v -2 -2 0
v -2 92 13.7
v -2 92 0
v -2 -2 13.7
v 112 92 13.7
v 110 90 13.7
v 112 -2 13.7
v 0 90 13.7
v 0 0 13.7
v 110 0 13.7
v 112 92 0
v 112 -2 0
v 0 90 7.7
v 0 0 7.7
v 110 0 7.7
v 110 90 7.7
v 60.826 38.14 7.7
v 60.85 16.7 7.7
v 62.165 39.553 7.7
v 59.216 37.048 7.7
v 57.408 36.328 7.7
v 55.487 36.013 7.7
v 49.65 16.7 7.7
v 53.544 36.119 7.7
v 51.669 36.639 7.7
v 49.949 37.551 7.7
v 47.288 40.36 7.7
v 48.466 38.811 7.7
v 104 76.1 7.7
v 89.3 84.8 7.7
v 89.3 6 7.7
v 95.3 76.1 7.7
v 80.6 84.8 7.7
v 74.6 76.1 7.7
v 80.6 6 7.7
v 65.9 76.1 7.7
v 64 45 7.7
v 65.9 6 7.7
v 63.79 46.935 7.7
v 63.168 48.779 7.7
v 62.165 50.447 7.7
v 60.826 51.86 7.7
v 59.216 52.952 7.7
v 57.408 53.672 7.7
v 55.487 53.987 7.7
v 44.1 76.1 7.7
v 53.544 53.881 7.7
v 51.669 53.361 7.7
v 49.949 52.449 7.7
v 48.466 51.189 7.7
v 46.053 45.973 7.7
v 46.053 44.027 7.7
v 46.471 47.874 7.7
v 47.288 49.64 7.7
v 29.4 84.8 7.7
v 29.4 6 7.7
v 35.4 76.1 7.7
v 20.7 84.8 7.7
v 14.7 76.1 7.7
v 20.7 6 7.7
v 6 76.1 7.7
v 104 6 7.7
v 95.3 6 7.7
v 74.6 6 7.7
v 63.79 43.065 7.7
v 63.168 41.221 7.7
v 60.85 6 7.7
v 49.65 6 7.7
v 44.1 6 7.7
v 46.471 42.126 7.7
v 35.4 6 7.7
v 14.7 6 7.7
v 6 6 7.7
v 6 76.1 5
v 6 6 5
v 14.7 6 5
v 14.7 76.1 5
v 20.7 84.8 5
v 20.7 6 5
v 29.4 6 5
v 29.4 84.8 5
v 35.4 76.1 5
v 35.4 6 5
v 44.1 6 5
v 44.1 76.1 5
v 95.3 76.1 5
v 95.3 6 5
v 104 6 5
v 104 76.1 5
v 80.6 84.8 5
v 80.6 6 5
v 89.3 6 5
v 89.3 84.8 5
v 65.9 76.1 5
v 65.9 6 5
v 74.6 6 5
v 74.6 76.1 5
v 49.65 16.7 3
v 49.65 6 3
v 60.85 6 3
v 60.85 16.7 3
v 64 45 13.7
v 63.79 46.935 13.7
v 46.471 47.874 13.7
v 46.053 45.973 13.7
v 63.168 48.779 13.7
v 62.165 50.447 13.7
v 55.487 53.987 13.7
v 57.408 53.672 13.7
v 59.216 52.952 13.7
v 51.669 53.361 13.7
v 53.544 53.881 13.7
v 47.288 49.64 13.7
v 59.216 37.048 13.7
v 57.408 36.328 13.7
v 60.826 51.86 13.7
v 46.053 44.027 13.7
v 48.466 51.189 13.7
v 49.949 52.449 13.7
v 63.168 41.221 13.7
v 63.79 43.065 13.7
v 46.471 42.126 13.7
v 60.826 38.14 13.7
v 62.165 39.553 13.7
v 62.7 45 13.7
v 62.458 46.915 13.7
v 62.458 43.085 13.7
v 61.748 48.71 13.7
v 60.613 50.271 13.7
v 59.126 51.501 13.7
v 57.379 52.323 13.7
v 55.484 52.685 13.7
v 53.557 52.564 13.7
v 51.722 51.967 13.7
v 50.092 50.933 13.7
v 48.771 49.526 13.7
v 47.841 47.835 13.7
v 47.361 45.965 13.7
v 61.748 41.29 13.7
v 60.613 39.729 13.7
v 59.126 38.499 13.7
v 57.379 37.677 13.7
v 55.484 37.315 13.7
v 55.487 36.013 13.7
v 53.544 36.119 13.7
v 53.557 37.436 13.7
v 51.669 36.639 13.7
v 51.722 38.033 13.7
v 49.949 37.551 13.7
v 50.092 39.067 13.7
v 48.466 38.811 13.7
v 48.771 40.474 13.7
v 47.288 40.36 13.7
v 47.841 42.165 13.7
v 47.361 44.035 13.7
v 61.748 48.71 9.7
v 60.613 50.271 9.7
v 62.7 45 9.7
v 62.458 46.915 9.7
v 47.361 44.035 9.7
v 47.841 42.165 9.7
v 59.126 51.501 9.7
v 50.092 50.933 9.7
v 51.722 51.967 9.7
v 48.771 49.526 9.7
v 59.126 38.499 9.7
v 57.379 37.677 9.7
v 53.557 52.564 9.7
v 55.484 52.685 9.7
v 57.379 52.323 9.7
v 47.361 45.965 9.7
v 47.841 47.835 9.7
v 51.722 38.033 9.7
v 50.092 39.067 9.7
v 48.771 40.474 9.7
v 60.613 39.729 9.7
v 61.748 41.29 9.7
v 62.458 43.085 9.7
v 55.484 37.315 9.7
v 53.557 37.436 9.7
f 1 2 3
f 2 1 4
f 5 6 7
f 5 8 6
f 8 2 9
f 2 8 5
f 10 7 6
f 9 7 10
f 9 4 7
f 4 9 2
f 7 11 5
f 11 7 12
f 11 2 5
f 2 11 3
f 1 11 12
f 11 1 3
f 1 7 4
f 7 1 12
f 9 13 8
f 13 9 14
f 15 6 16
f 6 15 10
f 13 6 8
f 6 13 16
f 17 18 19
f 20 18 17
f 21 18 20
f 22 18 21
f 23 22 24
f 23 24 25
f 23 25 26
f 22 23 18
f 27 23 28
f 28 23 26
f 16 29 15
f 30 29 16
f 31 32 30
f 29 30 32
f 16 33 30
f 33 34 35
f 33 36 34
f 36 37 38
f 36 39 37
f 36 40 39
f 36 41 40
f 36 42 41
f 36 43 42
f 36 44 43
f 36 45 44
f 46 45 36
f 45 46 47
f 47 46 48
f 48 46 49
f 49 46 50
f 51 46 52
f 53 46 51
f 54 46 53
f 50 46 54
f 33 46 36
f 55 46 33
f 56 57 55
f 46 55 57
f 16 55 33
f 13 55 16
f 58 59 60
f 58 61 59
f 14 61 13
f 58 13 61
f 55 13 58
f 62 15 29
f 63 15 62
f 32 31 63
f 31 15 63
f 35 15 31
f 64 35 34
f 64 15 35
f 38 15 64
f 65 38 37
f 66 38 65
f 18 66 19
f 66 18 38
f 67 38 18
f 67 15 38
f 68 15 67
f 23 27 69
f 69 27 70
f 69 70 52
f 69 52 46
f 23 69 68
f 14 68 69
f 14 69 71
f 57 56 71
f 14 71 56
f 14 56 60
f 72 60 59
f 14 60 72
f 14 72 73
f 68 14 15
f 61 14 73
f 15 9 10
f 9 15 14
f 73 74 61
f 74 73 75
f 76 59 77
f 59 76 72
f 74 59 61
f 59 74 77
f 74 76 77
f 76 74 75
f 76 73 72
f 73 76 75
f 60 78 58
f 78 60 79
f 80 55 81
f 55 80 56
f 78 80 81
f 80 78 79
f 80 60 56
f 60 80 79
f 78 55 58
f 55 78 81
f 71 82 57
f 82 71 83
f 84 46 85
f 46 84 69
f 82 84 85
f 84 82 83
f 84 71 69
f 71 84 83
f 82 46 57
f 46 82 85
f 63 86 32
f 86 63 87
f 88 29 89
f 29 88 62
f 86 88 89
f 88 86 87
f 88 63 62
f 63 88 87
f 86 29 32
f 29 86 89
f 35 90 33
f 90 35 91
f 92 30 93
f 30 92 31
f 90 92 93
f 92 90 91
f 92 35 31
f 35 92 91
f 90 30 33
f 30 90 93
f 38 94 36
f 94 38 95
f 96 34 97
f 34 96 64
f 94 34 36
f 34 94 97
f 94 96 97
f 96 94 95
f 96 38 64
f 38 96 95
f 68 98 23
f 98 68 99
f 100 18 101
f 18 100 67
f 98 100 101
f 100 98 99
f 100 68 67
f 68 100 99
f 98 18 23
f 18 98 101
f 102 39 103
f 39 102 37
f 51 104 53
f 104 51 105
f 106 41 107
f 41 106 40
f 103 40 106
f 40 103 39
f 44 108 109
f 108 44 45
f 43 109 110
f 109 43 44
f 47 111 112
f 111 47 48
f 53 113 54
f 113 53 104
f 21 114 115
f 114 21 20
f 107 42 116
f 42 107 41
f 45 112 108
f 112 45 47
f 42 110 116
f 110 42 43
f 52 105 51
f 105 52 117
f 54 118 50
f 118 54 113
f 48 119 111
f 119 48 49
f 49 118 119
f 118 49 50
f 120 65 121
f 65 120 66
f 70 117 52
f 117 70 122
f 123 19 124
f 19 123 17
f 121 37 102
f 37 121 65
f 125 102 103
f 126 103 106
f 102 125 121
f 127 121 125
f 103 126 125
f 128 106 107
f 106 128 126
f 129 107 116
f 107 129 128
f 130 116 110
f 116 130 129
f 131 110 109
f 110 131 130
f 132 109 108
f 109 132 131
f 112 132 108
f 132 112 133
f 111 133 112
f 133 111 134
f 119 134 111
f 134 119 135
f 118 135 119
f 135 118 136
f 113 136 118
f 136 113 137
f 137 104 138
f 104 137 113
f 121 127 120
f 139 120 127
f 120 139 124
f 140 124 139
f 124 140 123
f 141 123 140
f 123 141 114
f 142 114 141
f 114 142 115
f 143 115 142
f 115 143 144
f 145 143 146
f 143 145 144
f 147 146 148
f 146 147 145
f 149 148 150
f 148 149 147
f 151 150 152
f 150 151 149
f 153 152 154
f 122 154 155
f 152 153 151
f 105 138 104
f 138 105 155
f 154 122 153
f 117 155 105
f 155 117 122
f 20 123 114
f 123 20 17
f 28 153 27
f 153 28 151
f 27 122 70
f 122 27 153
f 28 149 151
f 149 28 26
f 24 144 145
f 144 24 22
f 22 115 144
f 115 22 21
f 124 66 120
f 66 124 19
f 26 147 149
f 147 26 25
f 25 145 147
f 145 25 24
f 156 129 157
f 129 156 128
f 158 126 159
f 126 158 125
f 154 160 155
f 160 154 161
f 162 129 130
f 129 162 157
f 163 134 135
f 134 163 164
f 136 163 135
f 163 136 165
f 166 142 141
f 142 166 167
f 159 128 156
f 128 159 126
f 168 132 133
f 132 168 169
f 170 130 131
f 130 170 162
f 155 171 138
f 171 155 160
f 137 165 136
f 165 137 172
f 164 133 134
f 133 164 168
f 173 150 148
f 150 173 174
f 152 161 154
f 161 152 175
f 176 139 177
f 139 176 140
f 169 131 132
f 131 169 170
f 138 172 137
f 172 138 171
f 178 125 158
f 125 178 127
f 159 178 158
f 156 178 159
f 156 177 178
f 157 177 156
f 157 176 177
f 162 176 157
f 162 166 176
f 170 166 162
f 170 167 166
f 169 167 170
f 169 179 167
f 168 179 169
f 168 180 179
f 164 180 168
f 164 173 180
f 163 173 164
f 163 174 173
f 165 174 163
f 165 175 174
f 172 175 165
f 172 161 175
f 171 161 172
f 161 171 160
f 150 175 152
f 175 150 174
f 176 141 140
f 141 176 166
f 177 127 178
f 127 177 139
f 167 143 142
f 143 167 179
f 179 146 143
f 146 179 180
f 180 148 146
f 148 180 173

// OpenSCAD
largeWoodenCubeSide = 10.2 + .5;
woodenCubeSide = 8.2 + .5;
protrusionHeight = 6;

length = 110;
width = 90;
floorHeight = 3;
height = (largeWoodenCubeSide - protrusionHeight) + floorHeight;
totalHeight = height + protrusionHeight;
magnetPadding = 15;
magnetBaseOuterDiameter = 18;
magnetBaseInnerDiameter = 15.4;
magnetHeight = 4.0;

woodenCubeBoxHeight = woodenCubeSide - protrusionHeight;
woodenCubeBoxLength = woodenCubeSide;


largeWoodenCubeBoxHeight = largeWoodenCubeSide - protrusionHeight;
largeWoodenCubeBoxWidth = largeWoodenCubeSide;

wallThickness = 6;
lipThickness = 2;

woodenCubeCount = 8;
largeWoodenCubeCount = 1;
woodenCubeBoxWidth = woodenCubeSide * woodenCubeCount + .5;
longWoodenCubeBoxWidth = woodenCubeSide * (woodenCubeCount + 1) + .5;
largeWoodenCubeBoxLength = largeWoodenCubeSide * largeWoodenCubeCount + .5;

union() {    
    difference() {    
        
            difference(){
                translate([-lipThickness, -lipThickness, 0])
                    cube([length + lipThickness * 2, width + lipThickness * 2, totalHeight]);
                translate([0, 0, height])
                    cube([length, width, totalHeight - height]);
                
                translate([wallThickness, wallThickness, 0])
                    WoodenCubeBox();
                translate([wallThickness * 2 + woodenCubeSide, wallThickness, 0])
                    LongWoodenCubeBox();
                translate([wallThickness * 3 + woodenCubeSide * 2, wallThickness, 0])
                    WoodenCubeBox();
                
                translate([length - (wallThickness + woodenCubeSide), wallThickness, 0])
                    WoodenCubeBox();
                translate([length - (wallThickness * 2 + woodenCubeSide * 2), wallThickness, 0])
                    LongWoodenCubeBox();
                translate([length - (wallThickness * 3 + woodenCubeSide * 3), wallThickness, 0])
                    WoodenCubeBox();
                
                translate([length/2 - largeWoodenCubeSide/2, wallThickness, 0])
                    LargeWoodenCubeBox();
            }

    }
    difference() {
        translate([length/2, width/2, 0])
            cylinder(height + protrusionHeight, d=magnetBaseOuterDiameter);
        translate([length/2, width/2, height + protrusionHeight - magnetHeight])
             cylinder(magnetHeight, d=magnetBaseInnerDiameter);
    }
}
    
    

module WoodenCubeBox()
{

    translate([0, 0, height - woodenCubeBoxHeight])
        cube([woodenCubeBoxLength, woodenCubeBoxWidth, woodenCubeBoxHeight]);

}

module LongWoodenCubeBox()
{

    translate([0, 0, height - woodenCubeBoxHeight])
        cube([woodenCubeBoxLength, longWoodenCubeBoxWidth, woodenCubeBoxHeight]);

}

module LargeWoodenCubeBox()
{

    translate([0, 0, height - largeWoodenCubeBoxHeight])
        cube([largeWoodenCubeBoxLength, largeWoodenCubeBoxWidth, largeWoodenCubeBoxHeight]);

}
